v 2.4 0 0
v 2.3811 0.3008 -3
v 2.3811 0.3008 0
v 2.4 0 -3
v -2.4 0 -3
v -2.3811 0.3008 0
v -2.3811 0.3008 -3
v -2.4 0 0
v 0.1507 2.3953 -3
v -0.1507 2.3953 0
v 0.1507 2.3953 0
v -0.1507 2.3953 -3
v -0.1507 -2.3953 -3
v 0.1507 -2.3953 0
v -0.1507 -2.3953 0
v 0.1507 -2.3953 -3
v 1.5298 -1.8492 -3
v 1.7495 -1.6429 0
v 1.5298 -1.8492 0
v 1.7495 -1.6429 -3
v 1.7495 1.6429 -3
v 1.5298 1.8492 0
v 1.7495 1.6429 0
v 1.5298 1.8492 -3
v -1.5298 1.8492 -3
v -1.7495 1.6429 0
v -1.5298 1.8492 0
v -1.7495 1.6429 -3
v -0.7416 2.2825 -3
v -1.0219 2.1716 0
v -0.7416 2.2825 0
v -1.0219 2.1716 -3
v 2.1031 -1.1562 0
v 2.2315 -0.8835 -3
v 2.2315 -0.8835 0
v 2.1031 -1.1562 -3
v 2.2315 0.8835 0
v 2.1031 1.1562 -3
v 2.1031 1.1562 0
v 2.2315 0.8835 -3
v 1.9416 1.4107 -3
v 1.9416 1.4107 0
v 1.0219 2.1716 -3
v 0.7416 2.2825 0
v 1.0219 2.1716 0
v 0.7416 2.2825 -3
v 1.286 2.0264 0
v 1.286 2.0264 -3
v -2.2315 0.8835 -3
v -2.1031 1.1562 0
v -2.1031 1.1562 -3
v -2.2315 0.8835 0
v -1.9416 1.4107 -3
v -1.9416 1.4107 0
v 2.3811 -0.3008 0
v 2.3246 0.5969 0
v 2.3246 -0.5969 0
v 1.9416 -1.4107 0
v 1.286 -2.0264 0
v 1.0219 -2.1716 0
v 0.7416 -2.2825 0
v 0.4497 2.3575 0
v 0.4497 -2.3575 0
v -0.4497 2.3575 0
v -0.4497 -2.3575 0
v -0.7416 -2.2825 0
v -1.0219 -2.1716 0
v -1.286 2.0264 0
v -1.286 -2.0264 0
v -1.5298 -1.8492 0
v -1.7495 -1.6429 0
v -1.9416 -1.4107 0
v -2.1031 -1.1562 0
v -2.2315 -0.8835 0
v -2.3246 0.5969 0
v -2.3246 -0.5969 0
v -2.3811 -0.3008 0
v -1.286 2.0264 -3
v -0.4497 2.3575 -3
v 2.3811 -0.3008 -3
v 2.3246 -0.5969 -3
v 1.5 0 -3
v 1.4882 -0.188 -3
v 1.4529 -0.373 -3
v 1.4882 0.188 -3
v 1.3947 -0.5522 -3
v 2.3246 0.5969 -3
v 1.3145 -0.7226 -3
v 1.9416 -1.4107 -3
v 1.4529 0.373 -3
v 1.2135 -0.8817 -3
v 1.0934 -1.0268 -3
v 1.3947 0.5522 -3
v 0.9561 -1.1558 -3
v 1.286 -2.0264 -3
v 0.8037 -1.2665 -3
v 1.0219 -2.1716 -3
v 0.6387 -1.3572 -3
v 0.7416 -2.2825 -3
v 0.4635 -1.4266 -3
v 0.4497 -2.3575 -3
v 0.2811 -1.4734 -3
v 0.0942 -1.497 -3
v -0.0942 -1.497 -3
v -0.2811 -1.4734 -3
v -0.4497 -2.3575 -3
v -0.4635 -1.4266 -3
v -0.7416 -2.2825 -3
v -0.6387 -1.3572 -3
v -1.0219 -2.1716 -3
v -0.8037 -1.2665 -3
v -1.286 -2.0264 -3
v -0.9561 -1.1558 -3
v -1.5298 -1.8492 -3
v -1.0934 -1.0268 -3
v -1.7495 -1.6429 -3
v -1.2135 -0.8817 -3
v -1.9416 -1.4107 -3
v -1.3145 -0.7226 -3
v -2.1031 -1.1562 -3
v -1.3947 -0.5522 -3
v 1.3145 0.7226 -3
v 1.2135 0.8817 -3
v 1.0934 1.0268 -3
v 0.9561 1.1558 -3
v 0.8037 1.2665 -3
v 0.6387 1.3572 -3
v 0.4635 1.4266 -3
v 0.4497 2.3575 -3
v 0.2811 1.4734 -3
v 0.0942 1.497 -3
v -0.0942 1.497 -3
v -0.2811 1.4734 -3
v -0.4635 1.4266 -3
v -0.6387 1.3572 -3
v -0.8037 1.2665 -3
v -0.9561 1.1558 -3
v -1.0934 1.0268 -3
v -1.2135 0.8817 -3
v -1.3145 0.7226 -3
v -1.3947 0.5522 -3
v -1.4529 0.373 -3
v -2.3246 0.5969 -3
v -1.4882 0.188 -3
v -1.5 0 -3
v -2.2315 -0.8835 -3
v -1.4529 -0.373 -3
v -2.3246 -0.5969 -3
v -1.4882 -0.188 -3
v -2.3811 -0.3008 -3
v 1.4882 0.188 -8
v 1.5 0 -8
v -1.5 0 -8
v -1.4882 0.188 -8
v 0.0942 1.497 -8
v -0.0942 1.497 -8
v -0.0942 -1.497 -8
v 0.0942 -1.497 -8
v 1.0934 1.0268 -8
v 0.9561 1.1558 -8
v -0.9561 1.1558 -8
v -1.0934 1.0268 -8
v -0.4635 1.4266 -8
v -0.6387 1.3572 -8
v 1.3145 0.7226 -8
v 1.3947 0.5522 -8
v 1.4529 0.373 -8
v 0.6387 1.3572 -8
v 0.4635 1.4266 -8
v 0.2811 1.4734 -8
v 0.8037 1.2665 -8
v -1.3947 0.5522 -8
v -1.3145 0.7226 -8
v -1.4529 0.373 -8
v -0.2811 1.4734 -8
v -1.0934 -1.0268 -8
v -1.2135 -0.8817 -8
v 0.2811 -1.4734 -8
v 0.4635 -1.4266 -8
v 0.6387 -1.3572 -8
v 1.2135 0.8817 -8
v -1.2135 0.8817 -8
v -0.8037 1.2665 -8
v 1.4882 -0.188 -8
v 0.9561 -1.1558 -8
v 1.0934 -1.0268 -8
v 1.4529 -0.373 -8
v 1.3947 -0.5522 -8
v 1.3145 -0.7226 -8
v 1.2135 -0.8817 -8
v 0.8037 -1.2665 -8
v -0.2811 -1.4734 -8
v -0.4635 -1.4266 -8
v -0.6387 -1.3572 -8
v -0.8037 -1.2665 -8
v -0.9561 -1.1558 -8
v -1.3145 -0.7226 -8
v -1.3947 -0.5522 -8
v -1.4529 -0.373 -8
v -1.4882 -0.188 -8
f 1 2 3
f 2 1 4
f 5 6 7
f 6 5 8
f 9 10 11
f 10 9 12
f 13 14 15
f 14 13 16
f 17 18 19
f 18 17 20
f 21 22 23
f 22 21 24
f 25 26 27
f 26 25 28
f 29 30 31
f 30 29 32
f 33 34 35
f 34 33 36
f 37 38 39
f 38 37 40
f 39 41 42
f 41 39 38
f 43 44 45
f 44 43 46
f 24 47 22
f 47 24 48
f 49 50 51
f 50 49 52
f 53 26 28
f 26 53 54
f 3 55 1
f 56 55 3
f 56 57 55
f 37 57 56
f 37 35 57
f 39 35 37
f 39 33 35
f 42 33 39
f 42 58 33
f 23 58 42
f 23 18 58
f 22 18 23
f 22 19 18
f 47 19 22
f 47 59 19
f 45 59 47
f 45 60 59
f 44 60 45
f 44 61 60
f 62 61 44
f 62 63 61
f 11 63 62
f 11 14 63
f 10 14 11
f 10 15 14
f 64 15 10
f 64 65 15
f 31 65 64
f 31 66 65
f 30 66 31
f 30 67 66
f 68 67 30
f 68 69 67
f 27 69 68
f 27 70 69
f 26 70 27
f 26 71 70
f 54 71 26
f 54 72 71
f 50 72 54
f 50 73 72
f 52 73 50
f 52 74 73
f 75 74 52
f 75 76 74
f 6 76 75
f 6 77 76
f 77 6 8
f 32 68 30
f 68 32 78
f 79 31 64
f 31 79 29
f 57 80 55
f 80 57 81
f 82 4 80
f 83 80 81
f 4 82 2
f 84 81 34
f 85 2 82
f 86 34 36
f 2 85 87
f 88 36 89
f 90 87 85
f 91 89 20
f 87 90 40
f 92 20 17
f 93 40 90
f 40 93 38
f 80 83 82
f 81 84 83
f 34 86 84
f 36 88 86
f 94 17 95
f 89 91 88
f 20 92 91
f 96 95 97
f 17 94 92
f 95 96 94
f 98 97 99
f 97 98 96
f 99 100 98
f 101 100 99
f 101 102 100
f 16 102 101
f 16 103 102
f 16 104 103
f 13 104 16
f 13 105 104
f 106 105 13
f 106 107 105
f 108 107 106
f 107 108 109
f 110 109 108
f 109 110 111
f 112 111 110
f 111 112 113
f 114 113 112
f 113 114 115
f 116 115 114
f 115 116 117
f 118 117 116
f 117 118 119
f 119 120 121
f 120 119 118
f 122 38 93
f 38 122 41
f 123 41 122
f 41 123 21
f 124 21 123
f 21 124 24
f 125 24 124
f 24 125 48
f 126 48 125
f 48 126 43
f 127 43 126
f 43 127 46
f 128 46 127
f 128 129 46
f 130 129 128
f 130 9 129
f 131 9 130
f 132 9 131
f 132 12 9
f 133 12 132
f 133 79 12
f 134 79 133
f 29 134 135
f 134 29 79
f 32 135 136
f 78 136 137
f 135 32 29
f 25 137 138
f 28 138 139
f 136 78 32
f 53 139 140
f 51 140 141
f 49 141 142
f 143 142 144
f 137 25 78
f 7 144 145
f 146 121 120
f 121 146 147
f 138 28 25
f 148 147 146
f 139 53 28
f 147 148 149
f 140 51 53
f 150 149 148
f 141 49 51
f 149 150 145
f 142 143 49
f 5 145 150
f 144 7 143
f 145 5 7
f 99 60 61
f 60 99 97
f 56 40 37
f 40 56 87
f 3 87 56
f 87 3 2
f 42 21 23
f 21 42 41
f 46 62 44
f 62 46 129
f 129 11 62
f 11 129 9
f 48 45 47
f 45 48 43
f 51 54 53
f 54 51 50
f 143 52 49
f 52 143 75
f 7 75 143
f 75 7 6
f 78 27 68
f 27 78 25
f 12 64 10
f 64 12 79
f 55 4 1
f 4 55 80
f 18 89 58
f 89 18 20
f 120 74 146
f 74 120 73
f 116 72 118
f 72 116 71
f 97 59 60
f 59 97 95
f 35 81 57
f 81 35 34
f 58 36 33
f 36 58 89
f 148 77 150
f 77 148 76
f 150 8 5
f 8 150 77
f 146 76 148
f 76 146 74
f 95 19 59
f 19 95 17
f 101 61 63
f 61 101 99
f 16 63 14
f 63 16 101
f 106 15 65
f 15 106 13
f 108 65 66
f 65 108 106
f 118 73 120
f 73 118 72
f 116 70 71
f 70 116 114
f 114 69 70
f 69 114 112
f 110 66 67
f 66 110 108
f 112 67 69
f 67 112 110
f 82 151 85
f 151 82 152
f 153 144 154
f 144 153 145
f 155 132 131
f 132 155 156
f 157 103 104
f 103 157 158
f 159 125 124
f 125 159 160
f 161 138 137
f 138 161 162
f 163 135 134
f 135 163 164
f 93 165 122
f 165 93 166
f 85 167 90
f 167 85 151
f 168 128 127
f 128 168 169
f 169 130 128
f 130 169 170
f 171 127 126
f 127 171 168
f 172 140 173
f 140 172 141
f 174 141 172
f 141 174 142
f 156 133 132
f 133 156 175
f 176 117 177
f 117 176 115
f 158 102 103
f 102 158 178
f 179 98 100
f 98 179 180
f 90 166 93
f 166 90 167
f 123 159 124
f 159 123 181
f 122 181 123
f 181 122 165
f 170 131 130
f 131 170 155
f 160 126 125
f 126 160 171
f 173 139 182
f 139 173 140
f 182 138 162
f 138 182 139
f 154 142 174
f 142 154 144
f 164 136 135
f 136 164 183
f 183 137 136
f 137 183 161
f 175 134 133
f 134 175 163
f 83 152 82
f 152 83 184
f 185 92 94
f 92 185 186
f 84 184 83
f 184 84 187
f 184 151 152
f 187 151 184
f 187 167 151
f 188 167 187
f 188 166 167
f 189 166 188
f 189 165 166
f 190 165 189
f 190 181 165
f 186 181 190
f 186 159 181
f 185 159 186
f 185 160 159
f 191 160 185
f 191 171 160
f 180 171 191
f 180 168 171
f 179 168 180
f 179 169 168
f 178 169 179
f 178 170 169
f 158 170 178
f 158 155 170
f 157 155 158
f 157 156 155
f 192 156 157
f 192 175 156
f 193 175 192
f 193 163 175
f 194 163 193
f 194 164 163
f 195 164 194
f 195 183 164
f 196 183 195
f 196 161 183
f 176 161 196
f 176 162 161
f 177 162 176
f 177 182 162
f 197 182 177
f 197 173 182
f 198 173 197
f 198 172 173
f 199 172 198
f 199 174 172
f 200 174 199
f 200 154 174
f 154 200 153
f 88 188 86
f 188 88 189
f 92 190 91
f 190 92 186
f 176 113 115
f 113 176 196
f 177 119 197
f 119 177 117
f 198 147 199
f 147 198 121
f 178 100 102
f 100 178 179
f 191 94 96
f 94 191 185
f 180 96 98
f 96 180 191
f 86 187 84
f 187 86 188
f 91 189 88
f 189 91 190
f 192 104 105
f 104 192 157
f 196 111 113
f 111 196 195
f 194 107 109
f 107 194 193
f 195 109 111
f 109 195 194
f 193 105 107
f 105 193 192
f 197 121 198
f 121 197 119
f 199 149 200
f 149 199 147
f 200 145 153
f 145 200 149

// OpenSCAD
$fn = 50;


difference() {
	union() {
		translate(v = [0, 0, -3]) {
			rotate(a = [0, 0, 0]) {
				cylinder(h = 3, r1 = 2.4000000000, r2 = 2.4000000000);
			}
		}
		translate(v = [0, 0, -8]) {
			rotate(a = [0, 0, 0]) {
				cylinder(h = 8, r = 1.5000000000);
			}
		}
	}
	union();
}
